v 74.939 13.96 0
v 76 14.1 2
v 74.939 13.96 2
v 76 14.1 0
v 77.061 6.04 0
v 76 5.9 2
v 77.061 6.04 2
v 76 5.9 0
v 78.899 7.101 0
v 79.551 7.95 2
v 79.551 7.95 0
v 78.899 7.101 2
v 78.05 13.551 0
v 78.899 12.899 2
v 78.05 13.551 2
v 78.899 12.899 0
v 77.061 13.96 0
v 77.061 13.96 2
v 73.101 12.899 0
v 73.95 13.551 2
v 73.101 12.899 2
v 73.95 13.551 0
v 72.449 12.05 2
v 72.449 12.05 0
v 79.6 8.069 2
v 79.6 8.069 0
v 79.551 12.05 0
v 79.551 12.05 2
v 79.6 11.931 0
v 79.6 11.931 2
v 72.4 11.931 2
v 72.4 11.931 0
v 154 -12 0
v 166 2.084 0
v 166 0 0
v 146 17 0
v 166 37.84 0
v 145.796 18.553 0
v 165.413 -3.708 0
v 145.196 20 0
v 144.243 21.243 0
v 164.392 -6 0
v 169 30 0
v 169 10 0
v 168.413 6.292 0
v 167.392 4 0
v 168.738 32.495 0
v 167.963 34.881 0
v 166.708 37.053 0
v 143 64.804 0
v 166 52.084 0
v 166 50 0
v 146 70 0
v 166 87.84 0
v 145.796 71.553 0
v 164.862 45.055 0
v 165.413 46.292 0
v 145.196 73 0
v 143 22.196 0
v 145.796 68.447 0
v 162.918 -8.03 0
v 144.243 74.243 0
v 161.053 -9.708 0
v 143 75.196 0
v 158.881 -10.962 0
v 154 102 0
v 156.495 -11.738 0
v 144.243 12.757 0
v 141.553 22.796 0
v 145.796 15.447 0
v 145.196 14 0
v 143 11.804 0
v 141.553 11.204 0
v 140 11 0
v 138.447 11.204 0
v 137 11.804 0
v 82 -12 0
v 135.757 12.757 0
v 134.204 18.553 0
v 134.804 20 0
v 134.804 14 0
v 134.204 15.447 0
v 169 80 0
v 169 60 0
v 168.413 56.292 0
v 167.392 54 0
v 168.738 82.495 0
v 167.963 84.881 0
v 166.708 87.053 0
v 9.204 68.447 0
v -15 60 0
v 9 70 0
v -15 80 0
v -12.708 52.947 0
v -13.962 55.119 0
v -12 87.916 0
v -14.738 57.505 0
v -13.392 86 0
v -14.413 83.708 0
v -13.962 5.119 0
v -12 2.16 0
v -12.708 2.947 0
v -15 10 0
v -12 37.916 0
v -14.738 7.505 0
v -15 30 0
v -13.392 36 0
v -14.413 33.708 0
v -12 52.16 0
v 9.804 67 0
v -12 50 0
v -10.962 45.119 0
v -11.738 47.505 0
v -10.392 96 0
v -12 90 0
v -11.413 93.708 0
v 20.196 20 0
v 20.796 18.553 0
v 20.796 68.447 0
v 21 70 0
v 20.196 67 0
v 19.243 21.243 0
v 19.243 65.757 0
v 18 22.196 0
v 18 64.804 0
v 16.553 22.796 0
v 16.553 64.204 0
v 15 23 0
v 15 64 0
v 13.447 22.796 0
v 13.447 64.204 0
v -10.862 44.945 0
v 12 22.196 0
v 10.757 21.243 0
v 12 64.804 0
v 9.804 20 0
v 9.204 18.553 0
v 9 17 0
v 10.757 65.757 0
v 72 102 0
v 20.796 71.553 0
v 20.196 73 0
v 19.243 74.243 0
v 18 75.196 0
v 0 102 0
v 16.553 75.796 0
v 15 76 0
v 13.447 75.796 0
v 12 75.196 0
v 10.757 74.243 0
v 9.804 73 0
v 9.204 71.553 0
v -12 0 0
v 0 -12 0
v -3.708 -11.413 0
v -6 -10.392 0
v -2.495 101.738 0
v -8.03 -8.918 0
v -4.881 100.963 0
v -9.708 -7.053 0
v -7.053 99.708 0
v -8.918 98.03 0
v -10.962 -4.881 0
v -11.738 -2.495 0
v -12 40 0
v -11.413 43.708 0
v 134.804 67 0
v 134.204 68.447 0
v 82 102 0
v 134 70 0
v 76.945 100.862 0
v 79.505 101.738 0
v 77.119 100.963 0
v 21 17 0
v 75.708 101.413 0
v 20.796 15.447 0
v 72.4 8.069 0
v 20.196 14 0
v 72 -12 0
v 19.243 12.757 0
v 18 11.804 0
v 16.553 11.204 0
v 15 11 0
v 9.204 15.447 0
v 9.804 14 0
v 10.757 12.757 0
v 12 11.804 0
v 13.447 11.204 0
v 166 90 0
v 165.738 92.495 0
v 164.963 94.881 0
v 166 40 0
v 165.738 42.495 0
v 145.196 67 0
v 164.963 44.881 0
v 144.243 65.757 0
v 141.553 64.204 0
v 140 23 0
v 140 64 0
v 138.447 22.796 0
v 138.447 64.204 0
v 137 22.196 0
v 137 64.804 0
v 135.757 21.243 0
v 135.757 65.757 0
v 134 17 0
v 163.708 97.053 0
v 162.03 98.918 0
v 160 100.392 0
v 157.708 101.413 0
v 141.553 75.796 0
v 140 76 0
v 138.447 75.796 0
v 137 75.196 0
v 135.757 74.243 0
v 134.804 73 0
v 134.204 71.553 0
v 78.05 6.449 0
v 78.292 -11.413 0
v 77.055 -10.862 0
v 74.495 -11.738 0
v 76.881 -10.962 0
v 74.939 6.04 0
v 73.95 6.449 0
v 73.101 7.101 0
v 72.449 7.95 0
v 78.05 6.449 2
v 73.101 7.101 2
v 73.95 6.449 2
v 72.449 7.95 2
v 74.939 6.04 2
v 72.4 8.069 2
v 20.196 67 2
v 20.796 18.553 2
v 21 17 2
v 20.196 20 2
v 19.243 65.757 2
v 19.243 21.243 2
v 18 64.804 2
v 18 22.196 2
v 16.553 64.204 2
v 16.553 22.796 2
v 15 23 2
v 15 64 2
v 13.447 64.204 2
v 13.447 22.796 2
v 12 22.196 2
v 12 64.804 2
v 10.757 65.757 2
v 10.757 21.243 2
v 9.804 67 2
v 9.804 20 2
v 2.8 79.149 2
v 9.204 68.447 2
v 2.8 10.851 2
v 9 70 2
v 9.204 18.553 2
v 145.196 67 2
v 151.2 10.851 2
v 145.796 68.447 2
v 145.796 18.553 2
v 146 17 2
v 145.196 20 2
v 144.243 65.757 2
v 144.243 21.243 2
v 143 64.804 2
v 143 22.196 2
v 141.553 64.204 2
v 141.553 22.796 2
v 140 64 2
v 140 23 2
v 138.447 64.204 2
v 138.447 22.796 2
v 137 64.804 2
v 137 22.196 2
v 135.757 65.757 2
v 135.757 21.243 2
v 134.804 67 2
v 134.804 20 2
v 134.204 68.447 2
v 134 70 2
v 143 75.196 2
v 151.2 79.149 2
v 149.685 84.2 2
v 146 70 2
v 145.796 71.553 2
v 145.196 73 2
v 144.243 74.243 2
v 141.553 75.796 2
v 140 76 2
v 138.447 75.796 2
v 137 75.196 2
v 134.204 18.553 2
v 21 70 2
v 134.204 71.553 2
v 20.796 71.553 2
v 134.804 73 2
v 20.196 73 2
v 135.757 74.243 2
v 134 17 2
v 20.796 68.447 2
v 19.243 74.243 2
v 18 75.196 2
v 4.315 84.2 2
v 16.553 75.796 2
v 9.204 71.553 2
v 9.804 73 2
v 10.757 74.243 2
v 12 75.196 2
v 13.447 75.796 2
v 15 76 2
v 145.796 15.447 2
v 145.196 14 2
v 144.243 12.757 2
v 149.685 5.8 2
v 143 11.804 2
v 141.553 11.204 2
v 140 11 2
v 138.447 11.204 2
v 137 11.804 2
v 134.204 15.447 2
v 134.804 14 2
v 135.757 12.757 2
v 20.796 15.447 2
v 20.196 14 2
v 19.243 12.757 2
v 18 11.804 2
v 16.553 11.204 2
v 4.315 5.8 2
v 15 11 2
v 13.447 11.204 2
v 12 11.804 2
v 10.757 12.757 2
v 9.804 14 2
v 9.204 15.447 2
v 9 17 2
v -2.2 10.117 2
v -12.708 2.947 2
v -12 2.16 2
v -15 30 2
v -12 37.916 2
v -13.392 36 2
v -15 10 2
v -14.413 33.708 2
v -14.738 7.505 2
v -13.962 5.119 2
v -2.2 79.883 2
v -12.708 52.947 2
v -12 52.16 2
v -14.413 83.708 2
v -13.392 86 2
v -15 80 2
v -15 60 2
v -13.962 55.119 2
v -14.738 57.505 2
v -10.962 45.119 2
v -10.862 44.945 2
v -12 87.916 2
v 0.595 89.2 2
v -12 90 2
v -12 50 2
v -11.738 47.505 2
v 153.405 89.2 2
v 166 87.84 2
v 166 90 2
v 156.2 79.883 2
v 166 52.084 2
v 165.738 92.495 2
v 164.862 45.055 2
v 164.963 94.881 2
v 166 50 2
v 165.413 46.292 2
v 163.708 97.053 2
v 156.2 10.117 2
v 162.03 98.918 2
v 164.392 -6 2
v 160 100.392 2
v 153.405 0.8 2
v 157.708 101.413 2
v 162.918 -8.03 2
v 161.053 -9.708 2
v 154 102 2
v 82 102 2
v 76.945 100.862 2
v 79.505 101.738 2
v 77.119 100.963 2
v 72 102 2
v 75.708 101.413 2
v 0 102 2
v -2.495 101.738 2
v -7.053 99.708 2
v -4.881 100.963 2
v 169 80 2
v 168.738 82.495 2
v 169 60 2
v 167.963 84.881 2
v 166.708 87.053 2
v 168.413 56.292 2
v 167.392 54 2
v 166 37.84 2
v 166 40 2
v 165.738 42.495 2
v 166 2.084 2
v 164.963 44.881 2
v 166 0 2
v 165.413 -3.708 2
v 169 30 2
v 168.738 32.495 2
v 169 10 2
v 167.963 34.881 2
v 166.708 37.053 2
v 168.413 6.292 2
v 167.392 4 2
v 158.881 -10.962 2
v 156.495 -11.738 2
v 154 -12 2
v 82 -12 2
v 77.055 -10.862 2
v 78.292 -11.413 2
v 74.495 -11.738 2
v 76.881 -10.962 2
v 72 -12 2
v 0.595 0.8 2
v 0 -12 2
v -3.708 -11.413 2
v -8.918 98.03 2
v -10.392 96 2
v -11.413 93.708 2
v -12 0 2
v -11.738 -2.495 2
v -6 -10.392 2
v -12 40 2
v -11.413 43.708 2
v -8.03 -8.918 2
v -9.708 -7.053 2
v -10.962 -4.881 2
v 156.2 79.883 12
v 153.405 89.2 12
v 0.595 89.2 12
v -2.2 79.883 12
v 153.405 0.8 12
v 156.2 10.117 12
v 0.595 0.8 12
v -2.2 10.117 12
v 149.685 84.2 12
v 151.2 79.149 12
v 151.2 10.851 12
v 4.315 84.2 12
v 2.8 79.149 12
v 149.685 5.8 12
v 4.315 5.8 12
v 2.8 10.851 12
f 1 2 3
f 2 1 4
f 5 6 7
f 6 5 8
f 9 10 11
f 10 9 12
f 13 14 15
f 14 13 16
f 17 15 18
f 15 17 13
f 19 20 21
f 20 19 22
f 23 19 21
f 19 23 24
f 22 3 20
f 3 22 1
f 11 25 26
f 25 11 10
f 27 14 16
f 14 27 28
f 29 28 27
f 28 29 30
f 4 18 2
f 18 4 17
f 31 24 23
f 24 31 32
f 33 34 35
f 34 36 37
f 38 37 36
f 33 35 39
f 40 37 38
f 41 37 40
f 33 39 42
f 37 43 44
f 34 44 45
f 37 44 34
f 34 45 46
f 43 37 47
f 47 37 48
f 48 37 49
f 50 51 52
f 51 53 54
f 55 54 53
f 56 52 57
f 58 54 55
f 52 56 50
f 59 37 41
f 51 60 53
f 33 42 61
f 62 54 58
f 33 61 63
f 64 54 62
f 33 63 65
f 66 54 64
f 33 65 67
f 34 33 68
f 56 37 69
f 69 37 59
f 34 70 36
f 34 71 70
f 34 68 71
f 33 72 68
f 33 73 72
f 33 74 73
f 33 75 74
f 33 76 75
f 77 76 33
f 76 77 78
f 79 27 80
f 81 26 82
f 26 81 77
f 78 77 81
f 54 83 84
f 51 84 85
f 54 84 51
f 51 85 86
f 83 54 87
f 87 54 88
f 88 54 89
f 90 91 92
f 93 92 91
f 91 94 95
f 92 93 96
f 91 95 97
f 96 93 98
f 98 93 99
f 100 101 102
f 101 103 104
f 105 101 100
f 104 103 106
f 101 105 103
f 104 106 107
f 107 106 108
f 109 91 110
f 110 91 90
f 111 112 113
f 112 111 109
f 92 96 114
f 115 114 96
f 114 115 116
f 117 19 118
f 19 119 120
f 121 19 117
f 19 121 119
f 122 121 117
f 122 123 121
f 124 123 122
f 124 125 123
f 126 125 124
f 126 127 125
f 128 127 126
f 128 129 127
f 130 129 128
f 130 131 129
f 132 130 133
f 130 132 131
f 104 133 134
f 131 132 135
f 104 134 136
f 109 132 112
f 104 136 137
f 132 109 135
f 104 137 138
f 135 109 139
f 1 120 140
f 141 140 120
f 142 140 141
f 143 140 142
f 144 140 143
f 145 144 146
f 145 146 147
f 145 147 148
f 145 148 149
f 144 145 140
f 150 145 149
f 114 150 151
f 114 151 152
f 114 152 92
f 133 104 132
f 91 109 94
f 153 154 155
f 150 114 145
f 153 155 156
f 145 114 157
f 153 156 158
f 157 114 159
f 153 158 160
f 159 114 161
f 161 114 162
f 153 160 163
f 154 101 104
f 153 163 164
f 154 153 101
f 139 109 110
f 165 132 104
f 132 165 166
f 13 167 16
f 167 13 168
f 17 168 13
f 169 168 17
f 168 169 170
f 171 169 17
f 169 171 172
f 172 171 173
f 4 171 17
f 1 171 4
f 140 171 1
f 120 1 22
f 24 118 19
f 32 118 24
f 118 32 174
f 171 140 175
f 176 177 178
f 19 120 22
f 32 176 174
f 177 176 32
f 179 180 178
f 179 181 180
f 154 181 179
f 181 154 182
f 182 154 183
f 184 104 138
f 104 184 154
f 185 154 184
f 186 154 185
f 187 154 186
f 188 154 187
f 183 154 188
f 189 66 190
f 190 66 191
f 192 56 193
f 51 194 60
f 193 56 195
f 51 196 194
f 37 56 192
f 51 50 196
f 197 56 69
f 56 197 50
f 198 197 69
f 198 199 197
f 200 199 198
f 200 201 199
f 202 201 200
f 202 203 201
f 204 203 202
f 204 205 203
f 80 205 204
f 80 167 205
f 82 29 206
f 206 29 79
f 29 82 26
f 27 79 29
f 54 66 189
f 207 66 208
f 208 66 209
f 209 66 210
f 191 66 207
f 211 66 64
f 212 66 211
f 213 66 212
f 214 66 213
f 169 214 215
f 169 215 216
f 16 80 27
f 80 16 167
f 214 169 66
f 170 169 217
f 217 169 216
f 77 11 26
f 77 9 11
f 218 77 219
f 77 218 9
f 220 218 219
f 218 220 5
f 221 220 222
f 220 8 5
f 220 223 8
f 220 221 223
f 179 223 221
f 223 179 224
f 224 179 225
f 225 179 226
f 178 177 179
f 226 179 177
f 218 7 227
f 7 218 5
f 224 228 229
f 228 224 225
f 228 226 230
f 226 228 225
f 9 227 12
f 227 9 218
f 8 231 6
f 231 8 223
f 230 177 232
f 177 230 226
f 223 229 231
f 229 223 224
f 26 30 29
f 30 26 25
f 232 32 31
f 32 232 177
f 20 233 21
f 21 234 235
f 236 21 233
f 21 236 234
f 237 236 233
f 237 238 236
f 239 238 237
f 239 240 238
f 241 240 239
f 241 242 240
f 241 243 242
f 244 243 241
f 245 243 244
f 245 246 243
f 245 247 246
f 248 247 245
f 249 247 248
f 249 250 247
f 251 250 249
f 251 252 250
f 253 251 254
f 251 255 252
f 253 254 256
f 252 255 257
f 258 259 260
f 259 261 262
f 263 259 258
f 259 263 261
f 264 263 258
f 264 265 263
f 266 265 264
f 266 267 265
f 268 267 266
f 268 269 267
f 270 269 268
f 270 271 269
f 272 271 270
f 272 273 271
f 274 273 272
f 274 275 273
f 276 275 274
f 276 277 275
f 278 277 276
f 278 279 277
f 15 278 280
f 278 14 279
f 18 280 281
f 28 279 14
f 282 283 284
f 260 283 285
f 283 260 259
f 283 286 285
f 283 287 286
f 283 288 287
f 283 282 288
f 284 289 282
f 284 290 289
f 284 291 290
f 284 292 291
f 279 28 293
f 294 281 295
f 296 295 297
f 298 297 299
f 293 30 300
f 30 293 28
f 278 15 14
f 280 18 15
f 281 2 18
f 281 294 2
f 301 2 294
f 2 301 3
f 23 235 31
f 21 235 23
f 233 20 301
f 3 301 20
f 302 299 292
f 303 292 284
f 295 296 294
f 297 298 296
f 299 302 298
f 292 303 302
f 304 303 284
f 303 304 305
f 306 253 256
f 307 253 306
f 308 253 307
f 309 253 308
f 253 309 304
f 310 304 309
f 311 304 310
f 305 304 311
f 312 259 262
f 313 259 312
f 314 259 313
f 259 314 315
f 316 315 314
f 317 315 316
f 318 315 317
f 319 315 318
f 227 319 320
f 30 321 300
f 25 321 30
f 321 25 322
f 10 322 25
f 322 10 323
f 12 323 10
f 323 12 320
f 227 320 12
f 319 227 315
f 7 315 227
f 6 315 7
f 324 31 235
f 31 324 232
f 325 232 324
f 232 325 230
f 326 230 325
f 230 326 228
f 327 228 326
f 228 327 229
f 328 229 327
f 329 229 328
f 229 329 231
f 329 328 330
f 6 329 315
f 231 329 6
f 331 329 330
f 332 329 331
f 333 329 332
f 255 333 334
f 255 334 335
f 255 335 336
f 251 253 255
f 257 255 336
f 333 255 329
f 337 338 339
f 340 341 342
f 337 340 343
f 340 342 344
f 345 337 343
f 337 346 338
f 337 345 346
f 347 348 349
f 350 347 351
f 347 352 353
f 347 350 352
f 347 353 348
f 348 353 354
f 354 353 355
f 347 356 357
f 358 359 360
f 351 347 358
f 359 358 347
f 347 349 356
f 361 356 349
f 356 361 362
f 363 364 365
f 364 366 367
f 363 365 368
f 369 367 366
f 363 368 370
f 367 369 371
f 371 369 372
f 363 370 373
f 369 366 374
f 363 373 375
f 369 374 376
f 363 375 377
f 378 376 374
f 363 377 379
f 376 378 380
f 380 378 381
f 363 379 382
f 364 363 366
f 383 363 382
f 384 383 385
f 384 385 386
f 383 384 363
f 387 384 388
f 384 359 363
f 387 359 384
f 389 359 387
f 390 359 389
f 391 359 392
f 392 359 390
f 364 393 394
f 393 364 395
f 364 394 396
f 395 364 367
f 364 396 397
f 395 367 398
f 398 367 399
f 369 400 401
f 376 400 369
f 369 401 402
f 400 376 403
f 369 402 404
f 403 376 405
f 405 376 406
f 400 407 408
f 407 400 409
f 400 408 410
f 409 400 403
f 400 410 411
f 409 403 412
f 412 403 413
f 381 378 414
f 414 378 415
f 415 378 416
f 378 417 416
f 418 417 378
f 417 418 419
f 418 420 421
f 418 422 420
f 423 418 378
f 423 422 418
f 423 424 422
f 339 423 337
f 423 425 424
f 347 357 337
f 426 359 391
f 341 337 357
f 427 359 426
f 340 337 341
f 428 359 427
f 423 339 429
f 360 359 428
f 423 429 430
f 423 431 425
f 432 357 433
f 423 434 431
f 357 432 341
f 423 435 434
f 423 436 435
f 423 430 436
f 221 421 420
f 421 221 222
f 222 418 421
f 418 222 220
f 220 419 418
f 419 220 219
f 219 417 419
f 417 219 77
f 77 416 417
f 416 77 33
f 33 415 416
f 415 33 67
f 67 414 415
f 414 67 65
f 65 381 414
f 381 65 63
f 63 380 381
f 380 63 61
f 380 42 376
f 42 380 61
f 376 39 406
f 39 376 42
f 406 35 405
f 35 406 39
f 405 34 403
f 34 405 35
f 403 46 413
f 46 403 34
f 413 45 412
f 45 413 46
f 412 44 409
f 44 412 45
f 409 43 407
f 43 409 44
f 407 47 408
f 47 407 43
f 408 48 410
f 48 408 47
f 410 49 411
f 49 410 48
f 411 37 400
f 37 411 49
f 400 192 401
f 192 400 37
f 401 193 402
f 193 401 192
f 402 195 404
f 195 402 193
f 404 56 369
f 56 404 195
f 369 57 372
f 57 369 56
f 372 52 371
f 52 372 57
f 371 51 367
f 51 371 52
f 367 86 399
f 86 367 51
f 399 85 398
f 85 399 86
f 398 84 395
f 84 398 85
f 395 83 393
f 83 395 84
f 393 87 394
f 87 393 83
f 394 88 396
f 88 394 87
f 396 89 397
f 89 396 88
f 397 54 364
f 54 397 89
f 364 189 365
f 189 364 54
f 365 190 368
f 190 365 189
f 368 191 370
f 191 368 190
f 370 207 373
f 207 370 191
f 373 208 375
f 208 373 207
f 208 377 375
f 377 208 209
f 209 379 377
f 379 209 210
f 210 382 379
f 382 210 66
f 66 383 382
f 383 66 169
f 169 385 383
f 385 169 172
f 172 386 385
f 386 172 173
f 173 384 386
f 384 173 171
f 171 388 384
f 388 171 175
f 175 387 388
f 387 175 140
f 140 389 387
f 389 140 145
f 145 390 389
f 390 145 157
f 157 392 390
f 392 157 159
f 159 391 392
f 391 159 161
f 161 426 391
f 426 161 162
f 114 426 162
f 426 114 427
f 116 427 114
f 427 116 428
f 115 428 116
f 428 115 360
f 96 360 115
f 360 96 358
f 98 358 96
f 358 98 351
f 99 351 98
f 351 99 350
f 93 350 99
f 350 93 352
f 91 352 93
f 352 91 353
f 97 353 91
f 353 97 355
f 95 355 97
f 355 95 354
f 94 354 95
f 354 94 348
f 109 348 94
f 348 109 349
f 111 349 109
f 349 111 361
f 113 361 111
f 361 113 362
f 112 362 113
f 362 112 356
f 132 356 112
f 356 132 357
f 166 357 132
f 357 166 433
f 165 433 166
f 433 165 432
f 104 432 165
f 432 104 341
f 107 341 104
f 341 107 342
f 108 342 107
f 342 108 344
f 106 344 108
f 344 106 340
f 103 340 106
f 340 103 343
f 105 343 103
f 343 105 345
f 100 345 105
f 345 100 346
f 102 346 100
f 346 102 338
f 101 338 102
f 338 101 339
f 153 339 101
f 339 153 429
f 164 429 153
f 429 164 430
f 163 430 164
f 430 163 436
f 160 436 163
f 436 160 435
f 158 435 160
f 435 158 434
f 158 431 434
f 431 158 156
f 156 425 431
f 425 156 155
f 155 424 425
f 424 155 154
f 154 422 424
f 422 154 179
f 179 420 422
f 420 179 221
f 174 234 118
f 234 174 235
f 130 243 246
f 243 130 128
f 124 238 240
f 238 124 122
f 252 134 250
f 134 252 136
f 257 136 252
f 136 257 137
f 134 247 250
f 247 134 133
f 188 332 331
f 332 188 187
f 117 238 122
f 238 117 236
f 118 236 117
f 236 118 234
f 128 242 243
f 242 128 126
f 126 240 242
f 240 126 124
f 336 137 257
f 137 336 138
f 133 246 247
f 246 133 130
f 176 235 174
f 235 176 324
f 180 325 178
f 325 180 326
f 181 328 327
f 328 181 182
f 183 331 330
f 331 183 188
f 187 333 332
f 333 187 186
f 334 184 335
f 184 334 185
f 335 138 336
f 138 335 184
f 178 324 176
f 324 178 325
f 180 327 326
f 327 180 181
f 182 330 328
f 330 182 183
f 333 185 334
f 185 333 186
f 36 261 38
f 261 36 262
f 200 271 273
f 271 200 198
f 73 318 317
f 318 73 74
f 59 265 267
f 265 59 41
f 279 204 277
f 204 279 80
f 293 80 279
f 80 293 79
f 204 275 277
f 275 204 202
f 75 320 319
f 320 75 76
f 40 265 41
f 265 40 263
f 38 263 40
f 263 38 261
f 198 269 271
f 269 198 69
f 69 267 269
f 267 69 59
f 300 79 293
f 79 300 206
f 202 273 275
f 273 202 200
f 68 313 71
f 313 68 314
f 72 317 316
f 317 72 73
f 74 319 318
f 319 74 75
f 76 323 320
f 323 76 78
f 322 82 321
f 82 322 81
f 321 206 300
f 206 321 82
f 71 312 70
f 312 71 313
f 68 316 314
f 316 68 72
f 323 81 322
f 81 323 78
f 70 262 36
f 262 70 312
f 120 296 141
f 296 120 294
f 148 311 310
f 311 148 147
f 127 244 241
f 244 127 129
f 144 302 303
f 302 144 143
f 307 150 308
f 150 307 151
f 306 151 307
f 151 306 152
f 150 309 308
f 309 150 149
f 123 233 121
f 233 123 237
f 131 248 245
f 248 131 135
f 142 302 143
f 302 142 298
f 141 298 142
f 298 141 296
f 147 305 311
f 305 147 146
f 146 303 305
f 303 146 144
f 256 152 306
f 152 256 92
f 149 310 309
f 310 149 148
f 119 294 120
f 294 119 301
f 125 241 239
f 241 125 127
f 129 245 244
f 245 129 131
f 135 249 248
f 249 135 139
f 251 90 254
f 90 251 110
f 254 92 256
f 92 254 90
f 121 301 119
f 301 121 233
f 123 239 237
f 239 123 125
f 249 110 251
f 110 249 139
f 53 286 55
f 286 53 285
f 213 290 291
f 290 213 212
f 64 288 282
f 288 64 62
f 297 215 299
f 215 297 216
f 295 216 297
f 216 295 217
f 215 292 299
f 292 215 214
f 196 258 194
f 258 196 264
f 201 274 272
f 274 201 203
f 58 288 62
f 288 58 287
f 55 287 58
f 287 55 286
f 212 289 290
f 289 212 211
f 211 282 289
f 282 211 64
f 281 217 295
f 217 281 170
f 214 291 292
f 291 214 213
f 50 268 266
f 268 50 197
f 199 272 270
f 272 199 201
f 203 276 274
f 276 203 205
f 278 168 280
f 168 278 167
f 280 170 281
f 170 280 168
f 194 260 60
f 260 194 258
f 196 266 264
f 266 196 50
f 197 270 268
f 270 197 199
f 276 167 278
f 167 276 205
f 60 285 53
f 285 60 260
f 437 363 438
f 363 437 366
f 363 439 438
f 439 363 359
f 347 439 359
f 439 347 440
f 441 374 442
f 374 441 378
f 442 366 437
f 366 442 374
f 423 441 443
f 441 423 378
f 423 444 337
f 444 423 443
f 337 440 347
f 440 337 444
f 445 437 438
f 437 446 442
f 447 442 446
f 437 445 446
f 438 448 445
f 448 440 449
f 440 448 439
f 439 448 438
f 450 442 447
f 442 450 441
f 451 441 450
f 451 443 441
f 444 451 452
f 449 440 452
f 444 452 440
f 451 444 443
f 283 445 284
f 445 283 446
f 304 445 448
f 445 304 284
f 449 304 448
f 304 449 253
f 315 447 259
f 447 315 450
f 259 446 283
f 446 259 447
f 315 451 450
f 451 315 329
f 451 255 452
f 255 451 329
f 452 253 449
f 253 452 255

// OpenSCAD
// file: BarrelJack.scad
module jack(){
    difference(){
        cylinder(h=8,r=4.1,$fn=24);
        translate([3.6,-2,0]) cube([2,8,8]);
        translate([-5.6,-2,0]) cube([2,8,8]);
    }
};

jack();
// file: quadPSU.scad
box_width=72;
box_height=40;
box_depth=40;
clip_height=20;
clip = 3;
clip_width=box_width+clip*2;
radius=12;
gap=-2  ;
depth=100;
screwRadius=4;

module rectangles(){ 
    for(i=[0:1]){
        for(j=[0:1]){
            translate([i*(box_width+gap+radius),j*(box_height+gap+radius)])
            union() { 
                square([box_width,box_height]);
                translate([(box_width-clip_width)/2,(box_height-clip_height)/2]) square([clip_width,clip_height]);
            }
        }
    }
}
// main file
include <quadPSU.scad>
use <BarrelJack.scad>
depth = 2;
box_depth = 10;
thickness = 5;
inset = 0.8;

module boxes(){
    linear_extrude(depth) offset(r=radius) rectangles();        
    //translate([0,0,depth-box_depth]) linear_extrude(box_depth) hull() rectangles();
}
    
module joint(p){
    translate([0,0,depth]) linear_extrude(box_depth) offset(delta=-p) hull() rectangles();
}


union(){
    difference(){
        boxes();
        translate([box_width+radius/2+gap,10,0]) jack();
        translate([15,17,0]) cylinder(10,r=6,$fn=24) ;
        translate([140,17,0]) cylinder(10,r=6,$fn=24) ;
        translate([15,70,0]) cylinder(10,r=6,$fn=24) ;
        translate([140,70,0]) cylinder(10,r=6,$fn=24) ;
    }
    difference(){
        joint(inset);
        joint(inset+thickness);
    }
    //translate([0,0,depth]) linear_extrude(box_depth) hull() rectangles();
}
